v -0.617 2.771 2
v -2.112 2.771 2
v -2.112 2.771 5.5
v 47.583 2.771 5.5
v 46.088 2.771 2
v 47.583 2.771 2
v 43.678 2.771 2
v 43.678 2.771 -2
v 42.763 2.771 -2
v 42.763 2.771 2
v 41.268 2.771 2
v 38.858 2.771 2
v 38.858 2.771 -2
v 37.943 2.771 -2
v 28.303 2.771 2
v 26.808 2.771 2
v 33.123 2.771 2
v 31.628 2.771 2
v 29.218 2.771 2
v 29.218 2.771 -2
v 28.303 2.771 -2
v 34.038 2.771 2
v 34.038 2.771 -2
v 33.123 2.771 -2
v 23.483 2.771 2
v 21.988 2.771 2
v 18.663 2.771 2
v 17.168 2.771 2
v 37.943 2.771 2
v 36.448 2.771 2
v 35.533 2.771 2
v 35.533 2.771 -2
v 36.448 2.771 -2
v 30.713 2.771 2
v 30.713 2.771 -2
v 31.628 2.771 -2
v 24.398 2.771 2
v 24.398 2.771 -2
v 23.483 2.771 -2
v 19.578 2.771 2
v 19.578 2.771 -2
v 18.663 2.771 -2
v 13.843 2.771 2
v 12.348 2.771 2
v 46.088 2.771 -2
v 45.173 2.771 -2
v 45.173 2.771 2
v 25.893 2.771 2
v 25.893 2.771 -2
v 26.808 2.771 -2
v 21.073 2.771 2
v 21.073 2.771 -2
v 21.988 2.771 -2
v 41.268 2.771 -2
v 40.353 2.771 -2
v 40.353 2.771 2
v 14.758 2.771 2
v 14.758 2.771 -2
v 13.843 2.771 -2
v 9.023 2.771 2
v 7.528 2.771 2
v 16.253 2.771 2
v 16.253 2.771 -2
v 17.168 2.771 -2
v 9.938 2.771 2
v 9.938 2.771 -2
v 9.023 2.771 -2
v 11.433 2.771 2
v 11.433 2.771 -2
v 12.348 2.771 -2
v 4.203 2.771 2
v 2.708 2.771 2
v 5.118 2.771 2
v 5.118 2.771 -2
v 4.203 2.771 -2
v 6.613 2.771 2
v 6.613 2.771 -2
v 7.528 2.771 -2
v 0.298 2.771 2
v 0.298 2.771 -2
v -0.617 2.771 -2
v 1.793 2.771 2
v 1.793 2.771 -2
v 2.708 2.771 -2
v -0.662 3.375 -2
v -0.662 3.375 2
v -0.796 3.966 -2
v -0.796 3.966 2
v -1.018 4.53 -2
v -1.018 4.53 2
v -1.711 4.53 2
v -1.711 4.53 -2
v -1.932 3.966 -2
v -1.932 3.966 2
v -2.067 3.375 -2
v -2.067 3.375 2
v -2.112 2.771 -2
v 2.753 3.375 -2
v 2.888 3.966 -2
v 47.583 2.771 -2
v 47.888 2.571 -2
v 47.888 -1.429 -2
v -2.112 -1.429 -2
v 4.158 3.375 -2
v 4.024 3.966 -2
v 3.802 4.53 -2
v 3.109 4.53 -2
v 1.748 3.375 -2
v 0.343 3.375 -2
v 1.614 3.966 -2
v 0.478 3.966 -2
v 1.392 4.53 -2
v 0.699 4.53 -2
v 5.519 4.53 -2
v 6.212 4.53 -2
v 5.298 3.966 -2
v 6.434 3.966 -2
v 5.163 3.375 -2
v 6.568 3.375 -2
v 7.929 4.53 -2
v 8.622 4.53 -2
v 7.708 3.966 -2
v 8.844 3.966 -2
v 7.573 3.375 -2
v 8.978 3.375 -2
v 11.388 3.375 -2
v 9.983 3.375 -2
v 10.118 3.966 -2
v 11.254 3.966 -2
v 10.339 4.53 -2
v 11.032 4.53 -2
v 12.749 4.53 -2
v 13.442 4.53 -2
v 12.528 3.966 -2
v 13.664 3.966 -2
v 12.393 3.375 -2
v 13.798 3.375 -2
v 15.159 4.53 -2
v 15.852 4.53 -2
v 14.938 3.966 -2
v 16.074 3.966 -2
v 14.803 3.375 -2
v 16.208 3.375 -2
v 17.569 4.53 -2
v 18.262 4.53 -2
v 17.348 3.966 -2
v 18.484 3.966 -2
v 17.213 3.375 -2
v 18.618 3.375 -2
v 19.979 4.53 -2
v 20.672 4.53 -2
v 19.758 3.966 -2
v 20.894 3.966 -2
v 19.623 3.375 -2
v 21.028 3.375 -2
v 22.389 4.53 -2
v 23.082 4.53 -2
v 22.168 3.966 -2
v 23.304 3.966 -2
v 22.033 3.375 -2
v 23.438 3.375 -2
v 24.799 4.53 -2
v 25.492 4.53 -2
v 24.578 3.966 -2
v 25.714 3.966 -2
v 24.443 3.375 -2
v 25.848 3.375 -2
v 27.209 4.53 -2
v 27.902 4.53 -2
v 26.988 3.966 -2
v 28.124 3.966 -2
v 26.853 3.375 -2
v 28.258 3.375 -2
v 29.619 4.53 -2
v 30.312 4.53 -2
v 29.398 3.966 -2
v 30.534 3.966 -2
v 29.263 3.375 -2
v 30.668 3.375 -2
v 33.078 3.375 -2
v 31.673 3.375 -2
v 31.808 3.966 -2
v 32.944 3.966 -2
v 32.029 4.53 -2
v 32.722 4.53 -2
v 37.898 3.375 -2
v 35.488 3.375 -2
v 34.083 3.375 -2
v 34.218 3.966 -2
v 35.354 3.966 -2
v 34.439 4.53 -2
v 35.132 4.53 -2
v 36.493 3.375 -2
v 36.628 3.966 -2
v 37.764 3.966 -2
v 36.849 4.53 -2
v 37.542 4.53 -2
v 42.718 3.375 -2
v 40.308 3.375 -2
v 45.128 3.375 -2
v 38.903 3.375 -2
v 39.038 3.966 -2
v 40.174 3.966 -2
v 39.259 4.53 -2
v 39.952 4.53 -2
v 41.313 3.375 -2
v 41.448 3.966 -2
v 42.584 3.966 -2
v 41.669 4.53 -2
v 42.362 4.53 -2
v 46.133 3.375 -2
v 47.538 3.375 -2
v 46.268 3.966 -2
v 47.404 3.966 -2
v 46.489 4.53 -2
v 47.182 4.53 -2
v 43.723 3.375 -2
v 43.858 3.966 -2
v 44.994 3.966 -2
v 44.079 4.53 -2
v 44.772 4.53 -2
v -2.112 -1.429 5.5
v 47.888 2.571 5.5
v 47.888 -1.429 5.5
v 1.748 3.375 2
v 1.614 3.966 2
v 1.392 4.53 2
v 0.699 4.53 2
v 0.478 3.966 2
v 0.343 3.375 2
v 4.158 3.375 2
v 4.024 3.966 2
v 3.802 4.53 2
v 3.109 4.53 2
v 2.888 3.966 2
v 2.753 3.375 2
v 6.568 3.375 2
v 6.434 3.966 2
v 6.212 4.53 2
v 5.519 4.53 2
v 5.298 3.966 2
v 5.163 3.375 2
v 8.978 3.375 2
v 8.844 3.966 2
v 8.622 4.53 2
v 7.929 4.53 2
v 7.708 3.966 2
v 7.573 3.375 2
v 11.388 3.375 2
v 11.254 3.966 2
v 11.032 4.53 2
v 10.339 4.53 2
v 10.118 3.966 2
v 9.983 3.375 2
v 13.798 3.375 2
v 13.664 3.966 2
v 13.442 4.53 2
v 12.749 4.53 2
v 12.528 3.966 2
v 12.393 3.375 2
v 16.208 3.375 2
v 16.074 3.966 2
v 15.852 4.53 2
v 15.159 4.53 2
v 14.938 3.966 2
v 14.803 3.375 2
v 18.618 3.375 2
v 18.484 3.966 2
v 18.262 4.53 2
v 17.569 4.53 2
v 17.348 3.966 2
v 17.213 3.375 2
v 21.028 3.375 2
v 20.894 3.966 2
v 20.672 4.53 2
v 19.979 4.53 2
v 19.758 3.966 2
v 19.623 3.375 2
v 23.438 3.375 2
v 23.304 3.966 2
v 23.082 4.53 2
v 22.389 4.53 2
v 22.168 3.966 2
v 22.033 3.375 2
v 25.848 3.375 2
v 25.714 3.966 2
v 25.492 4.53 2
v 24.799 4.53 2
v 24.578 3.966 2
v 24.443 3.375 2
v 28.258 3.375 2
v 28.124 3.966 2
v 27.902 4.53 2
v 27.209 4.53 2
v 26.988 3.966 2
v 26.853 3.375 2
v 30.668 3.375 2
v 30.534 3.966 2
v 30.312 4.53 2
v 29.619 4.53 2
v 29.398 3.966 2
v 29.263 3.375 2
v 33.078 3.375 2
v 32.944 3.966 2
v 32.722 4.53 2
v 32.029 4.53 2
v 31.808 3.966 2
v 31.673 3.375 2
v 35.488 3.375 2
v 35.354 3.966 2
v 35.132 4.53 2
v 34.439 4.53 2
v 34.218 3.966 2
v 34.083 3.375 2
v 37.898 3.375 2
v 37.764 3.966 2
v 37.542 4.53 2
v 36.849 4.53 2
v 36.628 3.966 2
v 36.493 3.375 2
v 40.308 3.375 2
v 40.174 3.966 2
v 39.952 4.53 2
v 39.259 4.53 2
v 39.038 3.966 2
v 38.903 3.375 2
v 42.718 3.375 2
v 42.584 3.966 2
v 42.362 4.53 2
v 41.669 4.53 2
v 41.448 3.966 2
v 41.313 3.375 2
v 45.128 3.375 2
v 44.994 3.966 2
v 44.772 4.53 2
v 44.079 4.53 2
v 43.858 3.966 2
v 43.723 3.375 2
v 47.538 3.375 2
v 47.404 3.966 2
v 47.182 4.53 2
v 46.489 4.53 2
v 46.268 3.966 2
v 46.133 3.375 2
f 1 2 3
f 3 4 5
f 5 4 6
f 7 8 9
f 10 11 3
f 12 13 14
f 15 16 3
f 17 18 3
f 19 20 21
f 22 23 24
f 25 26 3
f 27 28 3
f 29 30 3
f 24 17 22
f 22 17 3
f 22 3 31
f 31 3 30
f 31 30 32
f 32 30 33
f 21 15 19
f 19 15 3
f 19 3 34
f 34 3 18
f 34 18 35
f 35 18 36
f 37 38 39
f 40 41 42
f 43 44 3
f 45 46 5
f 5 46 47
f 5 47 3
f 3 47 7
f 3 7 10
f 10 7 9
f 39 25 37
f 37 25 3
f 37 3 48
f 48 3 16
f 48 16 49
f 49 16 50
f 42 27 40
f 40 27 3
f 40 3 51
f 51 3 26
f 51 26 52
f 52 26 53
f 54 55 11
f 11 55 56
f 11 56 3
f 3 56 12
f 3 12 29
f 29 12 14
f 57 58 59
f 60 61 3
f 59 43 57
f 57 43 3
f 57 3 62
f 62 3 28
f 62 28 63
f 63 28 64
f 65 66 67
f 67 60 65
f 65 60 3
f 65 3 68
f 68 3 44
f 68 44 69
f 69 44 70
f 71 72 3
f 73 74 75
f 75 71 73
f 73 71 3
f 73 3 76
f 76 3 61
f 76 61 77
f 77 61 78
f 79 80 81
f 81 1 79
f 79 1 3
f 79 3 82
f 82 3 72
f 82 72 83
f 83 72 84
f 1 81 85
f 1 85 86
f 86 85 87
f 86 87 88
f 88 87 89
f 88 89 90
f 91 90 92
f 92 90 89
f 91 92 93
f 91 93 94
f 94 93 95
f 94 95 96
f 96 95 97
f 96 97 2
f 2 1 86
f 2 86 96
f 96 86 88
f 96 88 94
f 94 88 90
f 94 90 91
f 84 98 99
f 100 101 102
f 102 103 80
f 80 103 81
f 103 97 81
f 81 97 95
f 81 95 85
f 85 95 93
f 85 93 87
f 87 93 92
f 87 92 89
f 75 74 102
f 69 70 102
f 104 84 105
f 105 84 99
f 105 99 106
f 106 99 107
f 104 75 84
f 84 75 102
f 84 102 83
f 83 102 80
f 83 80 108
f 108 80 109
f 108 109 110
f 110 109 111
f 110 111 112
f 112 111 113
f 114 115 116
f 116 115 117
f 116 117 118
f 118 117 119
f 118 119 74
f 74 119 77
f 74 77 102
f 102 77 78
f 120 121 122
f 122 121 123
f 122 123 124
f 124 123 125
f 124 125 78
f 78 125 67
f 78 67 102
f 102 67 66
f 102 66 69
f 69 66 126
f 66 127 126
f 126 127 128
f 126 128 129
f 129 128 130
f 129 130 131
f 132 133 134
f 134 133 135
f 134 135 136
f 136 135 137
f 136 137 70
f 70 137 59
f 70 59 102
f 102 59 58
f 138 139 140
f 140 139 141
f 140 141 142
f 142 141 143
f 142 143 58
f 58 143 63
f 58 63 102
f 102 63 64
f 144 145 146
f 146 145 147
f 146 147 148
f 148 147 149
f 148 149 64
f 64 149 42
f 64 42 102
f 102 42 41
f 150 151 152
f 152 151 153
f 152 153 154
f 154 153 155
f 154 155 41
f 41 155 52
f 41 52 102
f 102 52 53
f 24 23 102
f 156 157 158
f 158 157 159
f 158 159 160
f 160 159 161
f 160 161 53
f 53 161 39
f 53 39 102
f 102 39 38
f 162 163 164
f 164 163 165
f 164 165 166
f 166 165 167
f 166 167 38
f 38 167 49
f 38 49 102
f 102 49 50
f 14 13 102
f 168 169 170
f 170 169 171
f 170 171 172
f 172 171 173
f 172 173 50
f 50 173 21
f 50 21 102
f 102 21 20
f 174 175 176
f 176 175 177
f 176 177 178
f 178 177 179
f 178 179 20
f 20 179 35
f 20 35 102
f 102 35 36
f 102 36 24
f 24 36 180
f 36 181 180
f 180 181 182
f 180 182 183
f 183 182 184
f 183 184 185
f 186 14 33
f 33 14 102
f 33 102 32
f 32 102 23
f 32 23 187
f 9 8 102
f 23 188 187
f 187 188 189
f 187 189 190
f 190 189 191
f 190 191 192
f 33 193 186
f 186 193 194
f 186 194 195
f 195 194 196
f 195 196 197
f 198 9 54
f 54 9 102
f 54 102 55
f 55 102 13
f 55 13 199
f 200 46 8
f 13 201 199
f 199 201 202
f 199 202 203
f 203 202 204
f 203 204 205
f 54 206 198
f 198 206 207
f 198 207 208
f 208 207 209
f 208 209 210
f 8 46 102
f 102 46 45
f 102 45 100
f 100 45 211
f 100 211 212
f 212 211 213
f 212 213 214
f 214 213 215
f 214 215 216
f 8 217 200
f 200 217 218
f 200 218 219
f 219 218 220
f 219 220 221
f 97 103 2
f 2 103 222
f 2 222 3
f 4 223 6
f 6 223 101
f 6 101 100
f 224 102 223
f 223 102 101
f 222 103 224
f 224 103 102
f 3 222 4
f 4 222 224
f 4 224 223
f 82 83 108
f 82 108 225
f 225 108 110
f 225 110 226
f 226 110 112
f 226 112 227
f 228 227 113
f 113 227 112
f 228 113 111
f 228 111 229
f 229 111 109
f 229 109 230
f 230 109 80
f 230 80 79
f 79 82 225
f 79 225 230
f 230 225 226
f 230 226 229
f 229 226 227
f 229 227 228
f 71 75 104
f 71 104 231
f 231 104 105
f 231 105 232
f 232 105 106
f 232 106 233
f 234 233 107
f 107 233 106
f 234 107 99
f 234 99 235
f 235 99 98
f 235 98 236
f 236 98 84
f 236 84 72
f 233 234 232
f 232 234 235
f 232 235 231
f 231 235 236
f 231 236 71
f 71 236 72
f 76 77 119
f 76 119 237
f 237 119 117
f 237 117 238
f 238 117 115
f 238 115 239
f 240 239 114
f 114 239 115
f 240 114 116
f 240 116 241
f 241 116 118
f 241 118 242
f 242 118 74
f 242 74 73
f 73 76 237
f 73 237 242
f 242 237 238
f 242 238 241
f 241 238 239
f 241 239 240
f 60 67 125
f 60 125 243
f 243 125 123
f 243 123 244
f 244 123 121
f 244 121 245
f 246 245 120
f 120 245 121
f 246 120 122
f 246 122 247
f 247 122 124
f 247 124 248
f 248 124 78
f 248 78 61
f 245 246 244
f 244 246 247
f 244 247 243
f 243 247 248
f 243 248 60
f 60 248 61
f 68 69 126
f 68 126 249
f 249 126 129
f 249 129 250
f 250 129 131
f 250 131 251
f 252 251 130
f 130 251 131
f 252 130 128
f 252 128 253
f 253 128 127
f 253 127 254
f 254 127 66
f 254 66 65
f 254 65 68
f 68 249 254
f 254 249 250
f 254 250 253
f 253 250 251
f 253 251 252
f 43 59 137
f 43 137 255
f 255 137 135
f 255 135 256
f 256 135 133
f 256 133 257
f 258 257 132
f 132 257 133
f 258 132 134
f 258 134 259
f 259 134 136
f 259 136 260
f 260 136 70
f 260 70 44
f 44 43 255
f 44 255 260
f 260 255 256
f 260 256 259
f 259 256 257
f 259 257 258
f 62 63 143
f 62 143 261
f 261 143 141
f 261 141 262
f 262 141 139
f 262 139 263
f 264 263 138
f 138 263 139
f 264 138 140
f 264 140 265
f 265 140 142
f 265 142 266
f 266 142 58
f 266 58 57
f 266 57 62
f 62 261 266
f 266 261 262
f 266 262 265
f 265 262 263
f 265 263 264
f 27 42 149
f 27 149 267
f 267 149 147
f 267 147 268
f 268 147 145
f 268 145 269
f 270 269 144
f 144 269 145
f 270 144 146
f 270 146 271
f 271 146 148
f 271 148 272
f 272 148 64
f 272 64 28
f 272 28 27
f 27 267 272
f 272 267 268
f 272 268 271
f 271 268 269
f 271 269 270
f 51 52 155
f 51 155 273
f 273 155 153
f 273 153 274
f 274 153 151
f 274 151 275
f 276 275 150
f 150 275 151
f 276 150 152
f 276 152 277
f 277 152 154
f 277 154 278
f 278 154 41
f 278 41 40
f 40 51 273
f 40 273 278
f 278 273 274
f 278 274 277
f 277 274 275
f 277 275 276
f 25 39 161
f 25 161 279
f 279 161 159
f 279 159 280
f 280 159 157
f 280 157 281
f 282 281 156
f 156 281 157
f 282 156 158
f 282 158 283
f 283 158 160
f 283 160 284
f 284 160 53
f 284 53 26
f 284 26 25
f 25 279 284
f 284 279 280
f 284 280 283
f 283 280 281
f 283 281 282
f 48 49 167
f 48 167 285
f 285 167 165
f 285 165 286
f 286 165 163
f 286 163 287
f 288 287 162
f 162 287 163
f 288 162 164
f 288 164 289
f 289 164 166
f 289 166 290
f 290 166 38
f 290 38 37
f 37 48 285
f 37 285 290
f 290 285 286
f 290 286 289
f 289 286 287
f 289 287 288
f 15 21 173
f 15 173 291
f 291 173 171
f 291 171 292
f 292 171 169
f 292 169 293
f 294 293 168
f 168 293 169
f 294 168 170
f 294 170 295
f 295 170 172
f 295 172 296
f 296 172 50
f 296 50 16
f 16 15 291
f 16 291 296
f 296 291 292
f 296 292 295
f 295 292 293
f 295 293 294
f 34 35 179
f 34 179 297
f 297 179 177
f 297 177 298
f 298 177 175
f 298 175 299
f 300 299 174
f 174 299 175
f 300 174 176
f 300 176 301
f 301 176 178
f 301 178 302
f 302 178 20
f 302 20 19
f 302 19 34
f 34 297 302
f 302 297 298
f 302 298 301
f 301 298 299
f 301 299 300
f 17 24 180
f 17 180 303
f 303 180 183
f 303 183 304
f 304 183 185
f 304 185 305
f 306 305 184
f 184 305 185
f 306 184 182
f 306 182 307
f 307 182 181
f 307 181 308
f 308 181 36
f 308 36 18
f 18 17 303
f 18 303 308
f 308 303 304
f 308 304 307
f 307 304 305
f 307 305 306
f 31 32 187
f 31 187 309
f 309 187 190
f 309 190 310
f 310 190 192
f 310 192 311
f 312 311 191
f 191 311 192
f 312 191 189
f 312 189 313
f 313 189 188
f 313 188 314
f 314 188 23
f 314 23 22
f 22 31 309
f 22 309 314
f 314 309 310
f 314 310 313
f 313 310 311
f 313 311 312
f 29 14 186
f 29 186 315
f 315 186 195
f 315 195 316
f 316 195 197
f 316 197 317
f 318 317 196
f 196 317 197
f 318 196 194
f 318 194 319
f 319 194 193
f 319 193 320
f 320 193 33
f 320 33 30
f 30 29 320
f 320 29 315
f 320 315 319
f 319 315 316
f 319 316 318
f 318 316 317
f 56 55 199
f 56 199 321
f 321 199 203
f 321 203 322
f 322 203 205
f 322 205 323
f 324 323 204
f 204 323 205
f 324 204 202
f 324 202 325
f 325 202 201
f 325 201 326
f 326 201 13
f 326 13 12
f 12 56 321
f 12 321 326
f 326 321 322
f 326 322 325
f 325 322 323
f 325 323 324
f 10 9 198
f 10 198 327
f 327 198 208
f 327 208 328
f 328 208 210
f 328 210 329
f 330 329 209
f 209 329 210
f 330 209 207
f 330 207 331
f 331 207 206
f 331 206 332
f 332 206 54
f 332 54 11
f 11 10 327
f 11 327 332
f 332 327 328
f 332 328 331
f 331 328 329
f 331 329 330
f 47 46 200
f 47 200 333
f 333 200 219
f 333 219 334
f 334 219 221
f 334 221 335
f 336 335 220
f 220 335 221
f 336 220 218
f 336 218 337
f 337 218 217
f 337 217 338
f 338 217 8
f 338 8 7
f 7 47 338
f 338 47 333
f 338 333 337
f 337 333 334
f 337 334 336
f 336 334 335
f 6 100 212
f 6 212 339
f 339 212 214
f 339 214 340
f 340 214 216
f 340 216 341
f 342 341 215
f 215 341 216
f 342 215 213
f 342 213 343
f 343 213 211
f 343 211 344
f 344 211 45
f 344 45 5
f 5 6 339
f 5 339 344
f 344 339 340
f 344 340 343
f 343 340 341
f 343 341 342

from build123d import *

# Parameters (mm, degrees)
RESSALTO_EXTRUS_O1_DEPTH      = 2
RESSALTO_EXTRUS_O1_2_DEPTH    = 2
RESSALTO_EXTRUS_O1_3_DEPTH    = 2
RESSALTO_EXTRUS_O1_4_DEPTH    = 2
RESSALTO_EXTRUS_O1_5_DEPTH    = 2
RESSALTO_EXTRUS_O1_6_DEPTH    = 2
RESSALTO_EXTRUS_O1_7_DEPTH    = 2
RESSALTO_EXTRUS_O1_8_DEPTH    = 2
RESSALTO_EXTRUS_O1_9_DEPTH    = 2
RESSALTO_EXTRUS_O1_10_DEPTH   = 2
RESSALTO_EXTRUS_O1_11_DEPTH   = 2
RESSALTO_EXTRUS_O1_12_DEPTH   = 2
RESSALTO_EXTRUS_O1_13_DEPTH   = 2
RESSALTO_EXTRUS_O1_14_DEPTH   = 2
RESSALTO_EXTRUS_O1_15_DEPTH   = 2
RESSALTO_EXTRUS_O1_16_DEPTH   = 2
RESSALTO_EXTRUS_O1_17_DEPTH   = 2
RESSALTO_EXTRUS_O1_18_DEPTH   = 2
RESSALTO_EXTRUS_O1_19_DEPTH   = 2
RESSALTO_EXTRUS_O1_20_DEPTH   = 2
RESSALTO_EXTRUS_O1_21_DEPTH   = 2
RESSALTO_EXTRUS_O2_DEPTH      = 5.5
RESSALTO_EXTRUS_O2_DEPTH_BACK = 2


with BuildPart() as part:
    # Esboço1 → Ressalto-extrusão1 (new, symmetric)
    with BuildSketch(Plane.XY):
        with BuildLine():
            Line((-1.017526261, 4.529689969), (-1.711247382, 4.529689969))
            ThreePointArc((-1.711247382, 4.529689969), (-2.010696446, 3.673045524), (-2.112202188, 2.771266155))
            Line((-2.112202188, 2.771266155), (-0.616571456, 2.771266155))
            ThreePointArc((-0.616571456, 2.771266155), (-0.718077198, 3.673045524), (-1.017526261, 4.529689969))
        make_face()
    extrude(amount=RESSALTO_EXTRUS_O1_DEPTH, both=True)



with BuildPart() as body_2:
    # Esboço1 → Ressalto-extrus_o1 2 (new, symmetric)
    with BuildSketch(Plane.XY):
        with BuildLine():
            ThreePointArc((0.698752618, 4.529689969), (0.399303554, 3.673045524), (0.297797812, 2.771266155))
            Line((0.297797812, 2.771266155), (1.793428544, 2.771266155))
            ThreePointArc((1.793428544, 2.771266155), (1.691922802, 3.673045524), (1.392473739, 4.529689969))
            Line((1.392473739, 4.529689969), (0.698752618, 4.529689969))
        make_face()
    extrude(amount=RESSALTO_EXTRUS_O1_2_DEPTH, both=True)


with BuildPart() as body_3:
    # Esboço1 → Ressalto-extrus_o1 3 (new, symmetric)
    with BuildSketch(Plane.XY):
        with BuildLine():
            ThreePointArc((3.108752618, 4.529689969), (2.809303554, 3.673045524), (2.707797812, 2.771266155))
            Line((2.707797812, 2.771266155), (4.203428544, 2.771266155))
            ThreePointArc((4.203428544, 2.771266155), (4.101922802, 3.673045524), (3.802473739, 4.529689969))
            Line((3.802473739, 4.529689969), (3.108752618, 4.529689969))
        make_face()
    extrude(amount=RESSALTO_EXTRUS_O1_3_DEPTH, both=True)


with BuildPart() as body_4:
    # Esboço1 → Ressalto-extrus_o1 4 (new, symmetric)
    with BuildSketch(Plane.XY):
        with BuildLine():
            Line((46.087797812, 2.771266155), (47.583428544, 2.771266155))
            ThreePointArc((47.583428544, 2.771266155), (47.481922802, 3.673045524), (47.182473739, 4.529689969))
            Line((47.182473739, 4.529689969), (46.488752618, 4.529689969))
            ThreePointArc((46.488752618, 4.529689969), (46.189303554, 3.673045524), (46.087797812, 2.771266155))
        make_face()
    extrude(amount=RESSALTO_EXTRUS_O1_4_DEPTH, both=True)


with BuildPart() as body_5:
    # Esboço1 → Ressalto-extrus_o1 5 (new, symmetric)
    with BuildSketch(Plane.XY):
        with BuildLine():
            ThreePointArc((5.518752618, 4.529689969), (5.219303554, 3.673045524), (5.117797812, 2.771266155))
            Line((5.117797812, 2.771266155), (6.613428544, 2.771266155))
            ThreePointArc((6.613428544, 2.771266155), (6.511922802, 3.673045524), (6.212473739, 4.529689969))
            Line((6.212473739, 4.529689969), (5.518752618, 4.529689969))
        make_face()
    extrude(amount=RESSALTO_EXTRUS_O1_5_DEPTH, both=True)


with BuildPart() as body_6:
    # Esboço1 → Ressalto-extrus_o1 6 (new, symmetric)
    with BuildSketch(Plane.XY):
        with BuildLine():
            Line((43.677797812, 2.771266155), (45.173428544, 2.771266155))
            ThreePointArc((45.173428544, 2.771266155), (45.071922802, 3.673045524), (44.772473739, 4.529689969))
            Line((44.772473739, 4.529689969), (44.078752618, 4.529689969))
            ThreePointArc((44.078752618, 4.529689969), (43.779303554, 3.673045524), (43.677797812, 2.771266155))
        make_face()
    extrude(amount=RESSALTO_EXTRUS_O1_6_DEPTH, both=True)


with BuildPart() as body_7:
    # Esboço1 → Ressalto-extrus_o1 7 (new, symmetric)
    with BuildSketch(Plane.XY):
        with BuildLine():
            ThreePointArc((7.928752618, 4.529689969), (7.629303554, 3.673045524), (7.527797812, 2.771266155))
            Line((7.527797812, 2.771266155), (9.023428544, 2.771266155))
            ThreePointArc((9.023428544, 2.771266155), (8.921922802, 3.673045524), (8.622473739, 4.529689969))
            Line((8.622473739, 4.529689969), (7.928752618, 4.529689969))
        make_face()
    extrude(amount=RESSALTO_EXTRUS_O1_7_DEPTH, both=True)


with BuildPart() as body_8:
    # Esboço1 → Ressalto-extrus_o1 8 (new, symmetric)
    with BuildSketch(Plane.XY):
        with BuildLine():
            Line((41.267797812, 2.771266155), (42.763428544, 2.771266155))
            ThreePointArc((42.763428544, 2.771266155), (42.661922802, 3.673045524), (42.362473739, 4.529689969))
            Line((42.362473739, 4.529689969), (41.668752618, 4.529689969))
            ThreePointArc((41.668752618, 4.529689969), (41.369303554, 3.673045524), (41.267797812, 2.771266155))
        make_face()
    extrude(amount=RESSALTO_EXTRUS_O1_8_DEPTH, both=True)


with BuildPart() as body_9:
    # Esboço1 → Ressalto-extrus_o1 9 (new, symmetric)
    with BuildSketch(Plane.XY):
        with BuildLine():
            ThreePointArc((10.338752618, 4.529689969), (10.039303554, 3.673045524), (9.937797812, 2.771266155))
            Line((9.937797812, 2.771266155), (11.433428544, 2.771266155))
            ThreePointArc((11.433428544, 2.771266155), (11.331922802, 3.673045524), (11.032473739, 4.529689969))
            Line((11.032473739, 4.529689969), (10.338752618, 4.529689969))
        make_face()
    extrude(amount=RESSALTO_EXTRUS_O1_9_DEPTH, both=True)


with BuildPart() as body_10:
    # Esboço1 → Ressalto-extrus_o1 10 (new, symmetric)
    with BuildSketch(Plane.XY):
        with BuildLine():
            Line((38.857797812, 2.771266155), (40.353428544, 2.771266155))
            ThreePointArc((40.353428544, 2.771266155), (40.251922802, 3.673045524), (39.952473739, 4.529689969))
            Line((39.952473739, 4.529689969), (39.258752618, 4.529689969))
            ThreePointArc((39.258752618, 4.529689969), (38.959303554, 3.673045524), (38.857797812, 2.771266155))
        make_face()
    extrude(amount=RESSALTO_EXTRUS_O1_10_DEPTH, both=True)


with BuildPart() as body_11:
    # Esboço1 → Ressalto-extrus_o1 11 (new, symmetric)
    with BuildSketch(Plane.XY):
        with BuildLine():
            ThreePointArc((12.748752618, 4.529689969), (12.449303554, 3.673045524), (12.347797812, 2.771266155))
            Line((12.347797812, 2.771266155), (13.843428544, 2.771266155))
            ThreePointArc((13.843428544, 2.771266155), (13.741922802, 3.673045524), (13.442473739, 4.529689969))
            Line((13.442473739, 4.529689969), (12.748752618, 4.529689969))
        make_face()
    extrude(amount=RESSALTO_EXTRUS_O1_11_DEPTH, both=True)


with BuildPart() as body_12:
    # Esboço1 → Ressalto-extrus_o1 12 (new, symmetric)
    with BuildSketch(Plane.XY):
        with BuildLine():
            Line((36.447797812, 2.771266155), (37.943428544, 2.771266155))
            ThreePointArc((37.943428544, 2.771266155), (37.841922802, 3.673045524), (37.542473739, 4.529689969))
            Line((37.542473739, 4.529689969), (36.848752618, 4.529689969))
            ThreePointArc((36.848752618, 4.529689969), (36.549303554, 3.673045524), (36.447797812, 2.771266155))
        make_face()
    extrude(amount=RESSALTO_EXTRUS_O1_12_DEPTH, both=True)


with BuildPart() as body_13:
    # Esboço1 → Ressalto-extrus_o1 13 (new, symmetric)
    with BuildSketch(Plane.XY):
        with BuildLine():
            ThreePointArc((15.158752618, 4.529689969), (14.859303554, 3.673045524), (14.757797812, 2.771266155))
            Line((14.757797812, 2.771266155), (16.253428544, 2.771266155))
            ThreePointArc((16.253428544, 2.771266155), (16.151922802, 3.673045524), (15.852473739, 4.529689969))
            Line((15.852473739, 4.529689969), (15.158752618, 4.529689969))
        make_face()
    extrude(amount=RESSALTO_EXTRUS_O1_13_DEPTH, both=True)


with BuildPart() as body_14:
    # Esboço1 → Ressalto-extrus_o1 14 (new, symmetric)
    with BuildSketch(Plane.XY):
        with BuildLine():
            Line((34.037797812, 2.771266155), (35.533428544, 2.771266155))
            ThreePointArc((35.533428544, 2.771266155), (35.431922802, 3.673045524), (35.132473739, 4.529689969))
            Line((35.132473739, 4.529689969), (34.438752618, 4.529689969))
            ThreePointArc((34.438752618, 4.529689969), (34.139303554, 3.673045524), (34.037797812, 2.771266155))
        make_face()
    extrude(amount=RESSALTO_EXTRUS_O1_14_DEPTH, both=True)


with BuildPart() as body_15:
    # Esboço1 → Ressalto-extrus_o1 15 (new, symmetric)
    with BuildSketch(Plane.XY):
        with BuildLine():
            ThreePointArc((17.568752618, 4.529689969), (17.269303554, 3.673045524), (17.167797812, 2.771266155))
            Line((17.167797812, 2.771266155), (18.663428544, 2.771266155))
            ThreePointArc((18.663428544, 2.771266155), (18.561922802, 3.673045524), (18.262473739, 4.529689969))
            Line((18.262473739, 4.529689969), (17.568752618, 4.529689969))
        make_face()
    extrude(amount=RESSALTO_EXTRUS_O1_15_DEPTH, both=True)


with BuildPart() as body_16:
    # Esboço1 → Ressalto-extrus_o1 16 (new, symmetric)
    with BuildSketch(Plane.XY):
        with BuildLine():
            Line((31.627797812, 2.771266155), (33.123428544, 2.771266155))
            ThreePointArc((33.123428544, 2.771266155), (33.021922802, 3.673045524), (32.722473739, 4.529689969))
            Line((32.722473739, 4.529689969), (32.028752618, 4.529689969))
            ThreePointArc((32.028752618, 4.529689969), (31.729303554, 3.673045524), (31.627797812, 2.771266155))
        make_face()
    extrude(amount=RESSALTO_EXTRUS_O1_16_DEPTH, both=True)


with BuildPart() as body_17:
    # Esboço1 → Ressalto-extrus_o1 17 (new, symmetric)
    with BuildSketch(Plane.XY):
        with BuildLine():
            ThreePointArc((19.978752618, 4.529689969), (19.679303554, 3.673045524), (19.577797812, 2.771266155))
            Line((19.577797812, 2.771266155), (21.073428544, 2.771266155))
            ThreePointArc((21.073428544, 2.771266155), (20.971922802, 3.673045524), (20.672473739, 4.529689969))
            Line((20.672473739, 4.529689969), (19.978752618, 4.529689969))
        make_face()
    extrude(amount=RESSALTO_EXTRUS_O1_17_DEPTH, both=True)


with BuildPart() as body_18:
    # Esboço1 → Ressalto-extrus_o1 18 (new, symmetric)
    with BuildSketch(Plane.XY):
        with BuildLine():
            Line((29.217797812, 2.771266155), (30.713428544, 2.771266155))
            ThreePointArc((30.713428544, 2.771266155), (30.611922802, 3.673045524), (30.312473739, 4.529689969))
            Line((30.312473739, 4.529689969), (29.618752618, 4.529689969))
            ThreePointArc((29.618752618, 4.529689969), (29.319303554, 3.673045524), (29.217797812, 2.771266155))
        make_face()
    extrude(amount=RESSALTO_EXTRUS_O1_18_DEPTH, both=True)


with BuildPart() as body_19:
    # Esboço1 → Ressalto-extrus_o1 19 (new, symmetric)
    with BuildSketch(Plane.XY):
        with BuildLine():
            ThreePointArc((22.388752618, 4.529689969), (22.089303554, 3.673045524), (21.987797812, 2.771266155))
            Line((21.987797812, 2.771266155), (23.483428544, 2.771266155))
            ThreePointArc((23.483428544, 2.771266155), (23.381922802, 3.673045524), (23.082473739, 4.529689969))
            Line((23.082473739, 4.529689969), (22.388752618, 4.529689969))
        make_face()
    extrude(amount=RESSALTO_EXTRUS_O1_19_DEPTH, both=True)


with BuildPart() as body_20:
    # Esboço1 → Ressalto-extrus_o1 20 (new, symmetric)
    with BuildSketch(Plane.XY):
        with BuildLine():
            Line((26.807797812, 2.771266155), (28.303428544, 2.771266155))
            ThreePointArc((28.303428544, 2.771266155), (28.201922802, 3.673045524), (27.902473739, 4.529689969))
            Line((27.902473739, 4.529689969), (27.208752618, 4.529689969))
            ThreePointArc((27.208752618, 4.529689969), (26.909303554, 3.673045524), (26.807797812, 2.771266155))
        make_face()
    extrude(amount=RESSALTO_EXTRUS_O1_20_DEPTH, both=True)


with BuildPart() as body_21:
    # Esboço1 → Ressalto-extrus_o1 21 (new, symmetric)
    with BuildSketch(Plane.XY):
        with BuildLine():
            ThreePointArc((24.798752618, 4.529689969), (24.499303554, 3.673045524), (24.397797812, 2.771266155))
            Line((24.397797812, 2.771266155), (25.893428544, 2.771266155))
            ThreePointArc((25.893428544, 2.771266155), (25.791922802, 3.673045524), (25.492473739, 4.529689969))
            Line((25.492473739, 4.529689969), (24.798752618, 4.529689969))
        make_face()
    extrude(amount=RESSALTO_EXTRUS_O1_21_DEPTH, both=True)


with BuildPart() as part_1:
    add(part.part)

    add(body_2.part)  # Ressalto-extrusão2 merges body 2

    add(body_3.part)  # Ressalto-extrusão2 merges body 3

    add(body_4.part)  # Ressalto-extrusão2 merges body 4

    add(body_5.part)  # Ressalto-extrusão2 merges body 5

    add(body_6.part)  # Ressalto-extrusão2 merges body 6

    add(body_7.part)  # Ressalto-extrusão2 merges body 7

    add(body_8.part)  # Ressalto-extrusão2 merges body 8

    add(body_9.part)  # Ressalto-extrusão2 merges body 9

    add(body_10.part)  # Ressalto-extrusão2 merges body 10

    add(body_11.part)  # Ressalto-extrusão2 merges body 11

    add(body_12.part)  # Ressalto-extrusão2 merges body 12

    add(body_13.part)  # Ressalto-extrusão2 merges body 13

    add(body_14.part)  # Ressalto-extrusão2 merges body 14

    add(body_15.part)  # Ressalto-extrusão2 merges body 15

    add(body_16.part)  # Ressalto-extrusão2 merges body 16

    add(body_17.part)  # Ressalto-extrusão2 merges body 17

    add(body_18.part)  # Ressalto-extrusão2 merges body 18

    add(body_19.part)  # Ressalto-extrusão2 merges body 19

    add(body_20.part)  # Ressalto-extrusão2 merges body 20

    add(body_21.part)  # Ressalto-extrusão2 merges body 21
    # Esboço1<7> → Ressalto-extrusão2 (add, two sides: drawn at the far end of the back side and taken through both)
    with BuildSketch(Plane.XY.offset(-RESSALTO_EXTRUS_O2_DEPTH_BACK)):
        Polygon((-0.616571456, 2.771266155), (-2.112202188, 2.771266155), (-2.112202188, -1.428733845), (47.887797812, -1.428733845), (47.887797812, 2.571294167), (47.583428544, 2.771266155), (46.087797812, 2.771266155), (45.173428544, 2.771266155), (43.677797812, 2.771266155), (42.763428544, 2.771266155), (41.267797812, 2.771266155), (40.353428544, 2.771266155), (38.857797812, 2.771266155), (37.943428544, 2.771266155), (36.447797812, 2.771266155), (35.533428544, 2.771266155), (34.037797812, 2.771266155), (33.123428544, 2.771266155), (31.627797812, 2.771266155), (30.713428544, 2.771266155), (29.217797812, 2.771266155), (28.303428544, 2.771266155), (26.807797812, 2.771266155), (25.893428544, 2.771266155), (24.397797812, 2.771266155), (23.483428544, 2.771266155), (21.987797812, 2.771266155), (21.073428544, 2.771266155), (19.577797812, 2.771266155), (18.663428544, 2.771266155), (17.167797812, 2.771266155), (16.253428544, 2.771266155), (14.757797812, 2.771266155), (13.843428544, 2.771266155), (12.347797812, 2.771266155), (11.433428544, 2.771266155), (9.937797812, 2.771266155), (9.023428544, 2.771266155), (7.527797812, 2.771266155), (6.613428544, 2.771266155), (5.117797812, 2.771266155), (4.203428544, 2.771266155), (2.707797812, 2.771266155), (1.793428544, 2.771266155), (0.297797812, 2.771266155), align=None)
    extrude(amount=RESSALTO_EXTRUS_O2_DEPTH + RESSALTO_EXTRUS_O2_DEPTH_BACK)


solid = part_1.part
